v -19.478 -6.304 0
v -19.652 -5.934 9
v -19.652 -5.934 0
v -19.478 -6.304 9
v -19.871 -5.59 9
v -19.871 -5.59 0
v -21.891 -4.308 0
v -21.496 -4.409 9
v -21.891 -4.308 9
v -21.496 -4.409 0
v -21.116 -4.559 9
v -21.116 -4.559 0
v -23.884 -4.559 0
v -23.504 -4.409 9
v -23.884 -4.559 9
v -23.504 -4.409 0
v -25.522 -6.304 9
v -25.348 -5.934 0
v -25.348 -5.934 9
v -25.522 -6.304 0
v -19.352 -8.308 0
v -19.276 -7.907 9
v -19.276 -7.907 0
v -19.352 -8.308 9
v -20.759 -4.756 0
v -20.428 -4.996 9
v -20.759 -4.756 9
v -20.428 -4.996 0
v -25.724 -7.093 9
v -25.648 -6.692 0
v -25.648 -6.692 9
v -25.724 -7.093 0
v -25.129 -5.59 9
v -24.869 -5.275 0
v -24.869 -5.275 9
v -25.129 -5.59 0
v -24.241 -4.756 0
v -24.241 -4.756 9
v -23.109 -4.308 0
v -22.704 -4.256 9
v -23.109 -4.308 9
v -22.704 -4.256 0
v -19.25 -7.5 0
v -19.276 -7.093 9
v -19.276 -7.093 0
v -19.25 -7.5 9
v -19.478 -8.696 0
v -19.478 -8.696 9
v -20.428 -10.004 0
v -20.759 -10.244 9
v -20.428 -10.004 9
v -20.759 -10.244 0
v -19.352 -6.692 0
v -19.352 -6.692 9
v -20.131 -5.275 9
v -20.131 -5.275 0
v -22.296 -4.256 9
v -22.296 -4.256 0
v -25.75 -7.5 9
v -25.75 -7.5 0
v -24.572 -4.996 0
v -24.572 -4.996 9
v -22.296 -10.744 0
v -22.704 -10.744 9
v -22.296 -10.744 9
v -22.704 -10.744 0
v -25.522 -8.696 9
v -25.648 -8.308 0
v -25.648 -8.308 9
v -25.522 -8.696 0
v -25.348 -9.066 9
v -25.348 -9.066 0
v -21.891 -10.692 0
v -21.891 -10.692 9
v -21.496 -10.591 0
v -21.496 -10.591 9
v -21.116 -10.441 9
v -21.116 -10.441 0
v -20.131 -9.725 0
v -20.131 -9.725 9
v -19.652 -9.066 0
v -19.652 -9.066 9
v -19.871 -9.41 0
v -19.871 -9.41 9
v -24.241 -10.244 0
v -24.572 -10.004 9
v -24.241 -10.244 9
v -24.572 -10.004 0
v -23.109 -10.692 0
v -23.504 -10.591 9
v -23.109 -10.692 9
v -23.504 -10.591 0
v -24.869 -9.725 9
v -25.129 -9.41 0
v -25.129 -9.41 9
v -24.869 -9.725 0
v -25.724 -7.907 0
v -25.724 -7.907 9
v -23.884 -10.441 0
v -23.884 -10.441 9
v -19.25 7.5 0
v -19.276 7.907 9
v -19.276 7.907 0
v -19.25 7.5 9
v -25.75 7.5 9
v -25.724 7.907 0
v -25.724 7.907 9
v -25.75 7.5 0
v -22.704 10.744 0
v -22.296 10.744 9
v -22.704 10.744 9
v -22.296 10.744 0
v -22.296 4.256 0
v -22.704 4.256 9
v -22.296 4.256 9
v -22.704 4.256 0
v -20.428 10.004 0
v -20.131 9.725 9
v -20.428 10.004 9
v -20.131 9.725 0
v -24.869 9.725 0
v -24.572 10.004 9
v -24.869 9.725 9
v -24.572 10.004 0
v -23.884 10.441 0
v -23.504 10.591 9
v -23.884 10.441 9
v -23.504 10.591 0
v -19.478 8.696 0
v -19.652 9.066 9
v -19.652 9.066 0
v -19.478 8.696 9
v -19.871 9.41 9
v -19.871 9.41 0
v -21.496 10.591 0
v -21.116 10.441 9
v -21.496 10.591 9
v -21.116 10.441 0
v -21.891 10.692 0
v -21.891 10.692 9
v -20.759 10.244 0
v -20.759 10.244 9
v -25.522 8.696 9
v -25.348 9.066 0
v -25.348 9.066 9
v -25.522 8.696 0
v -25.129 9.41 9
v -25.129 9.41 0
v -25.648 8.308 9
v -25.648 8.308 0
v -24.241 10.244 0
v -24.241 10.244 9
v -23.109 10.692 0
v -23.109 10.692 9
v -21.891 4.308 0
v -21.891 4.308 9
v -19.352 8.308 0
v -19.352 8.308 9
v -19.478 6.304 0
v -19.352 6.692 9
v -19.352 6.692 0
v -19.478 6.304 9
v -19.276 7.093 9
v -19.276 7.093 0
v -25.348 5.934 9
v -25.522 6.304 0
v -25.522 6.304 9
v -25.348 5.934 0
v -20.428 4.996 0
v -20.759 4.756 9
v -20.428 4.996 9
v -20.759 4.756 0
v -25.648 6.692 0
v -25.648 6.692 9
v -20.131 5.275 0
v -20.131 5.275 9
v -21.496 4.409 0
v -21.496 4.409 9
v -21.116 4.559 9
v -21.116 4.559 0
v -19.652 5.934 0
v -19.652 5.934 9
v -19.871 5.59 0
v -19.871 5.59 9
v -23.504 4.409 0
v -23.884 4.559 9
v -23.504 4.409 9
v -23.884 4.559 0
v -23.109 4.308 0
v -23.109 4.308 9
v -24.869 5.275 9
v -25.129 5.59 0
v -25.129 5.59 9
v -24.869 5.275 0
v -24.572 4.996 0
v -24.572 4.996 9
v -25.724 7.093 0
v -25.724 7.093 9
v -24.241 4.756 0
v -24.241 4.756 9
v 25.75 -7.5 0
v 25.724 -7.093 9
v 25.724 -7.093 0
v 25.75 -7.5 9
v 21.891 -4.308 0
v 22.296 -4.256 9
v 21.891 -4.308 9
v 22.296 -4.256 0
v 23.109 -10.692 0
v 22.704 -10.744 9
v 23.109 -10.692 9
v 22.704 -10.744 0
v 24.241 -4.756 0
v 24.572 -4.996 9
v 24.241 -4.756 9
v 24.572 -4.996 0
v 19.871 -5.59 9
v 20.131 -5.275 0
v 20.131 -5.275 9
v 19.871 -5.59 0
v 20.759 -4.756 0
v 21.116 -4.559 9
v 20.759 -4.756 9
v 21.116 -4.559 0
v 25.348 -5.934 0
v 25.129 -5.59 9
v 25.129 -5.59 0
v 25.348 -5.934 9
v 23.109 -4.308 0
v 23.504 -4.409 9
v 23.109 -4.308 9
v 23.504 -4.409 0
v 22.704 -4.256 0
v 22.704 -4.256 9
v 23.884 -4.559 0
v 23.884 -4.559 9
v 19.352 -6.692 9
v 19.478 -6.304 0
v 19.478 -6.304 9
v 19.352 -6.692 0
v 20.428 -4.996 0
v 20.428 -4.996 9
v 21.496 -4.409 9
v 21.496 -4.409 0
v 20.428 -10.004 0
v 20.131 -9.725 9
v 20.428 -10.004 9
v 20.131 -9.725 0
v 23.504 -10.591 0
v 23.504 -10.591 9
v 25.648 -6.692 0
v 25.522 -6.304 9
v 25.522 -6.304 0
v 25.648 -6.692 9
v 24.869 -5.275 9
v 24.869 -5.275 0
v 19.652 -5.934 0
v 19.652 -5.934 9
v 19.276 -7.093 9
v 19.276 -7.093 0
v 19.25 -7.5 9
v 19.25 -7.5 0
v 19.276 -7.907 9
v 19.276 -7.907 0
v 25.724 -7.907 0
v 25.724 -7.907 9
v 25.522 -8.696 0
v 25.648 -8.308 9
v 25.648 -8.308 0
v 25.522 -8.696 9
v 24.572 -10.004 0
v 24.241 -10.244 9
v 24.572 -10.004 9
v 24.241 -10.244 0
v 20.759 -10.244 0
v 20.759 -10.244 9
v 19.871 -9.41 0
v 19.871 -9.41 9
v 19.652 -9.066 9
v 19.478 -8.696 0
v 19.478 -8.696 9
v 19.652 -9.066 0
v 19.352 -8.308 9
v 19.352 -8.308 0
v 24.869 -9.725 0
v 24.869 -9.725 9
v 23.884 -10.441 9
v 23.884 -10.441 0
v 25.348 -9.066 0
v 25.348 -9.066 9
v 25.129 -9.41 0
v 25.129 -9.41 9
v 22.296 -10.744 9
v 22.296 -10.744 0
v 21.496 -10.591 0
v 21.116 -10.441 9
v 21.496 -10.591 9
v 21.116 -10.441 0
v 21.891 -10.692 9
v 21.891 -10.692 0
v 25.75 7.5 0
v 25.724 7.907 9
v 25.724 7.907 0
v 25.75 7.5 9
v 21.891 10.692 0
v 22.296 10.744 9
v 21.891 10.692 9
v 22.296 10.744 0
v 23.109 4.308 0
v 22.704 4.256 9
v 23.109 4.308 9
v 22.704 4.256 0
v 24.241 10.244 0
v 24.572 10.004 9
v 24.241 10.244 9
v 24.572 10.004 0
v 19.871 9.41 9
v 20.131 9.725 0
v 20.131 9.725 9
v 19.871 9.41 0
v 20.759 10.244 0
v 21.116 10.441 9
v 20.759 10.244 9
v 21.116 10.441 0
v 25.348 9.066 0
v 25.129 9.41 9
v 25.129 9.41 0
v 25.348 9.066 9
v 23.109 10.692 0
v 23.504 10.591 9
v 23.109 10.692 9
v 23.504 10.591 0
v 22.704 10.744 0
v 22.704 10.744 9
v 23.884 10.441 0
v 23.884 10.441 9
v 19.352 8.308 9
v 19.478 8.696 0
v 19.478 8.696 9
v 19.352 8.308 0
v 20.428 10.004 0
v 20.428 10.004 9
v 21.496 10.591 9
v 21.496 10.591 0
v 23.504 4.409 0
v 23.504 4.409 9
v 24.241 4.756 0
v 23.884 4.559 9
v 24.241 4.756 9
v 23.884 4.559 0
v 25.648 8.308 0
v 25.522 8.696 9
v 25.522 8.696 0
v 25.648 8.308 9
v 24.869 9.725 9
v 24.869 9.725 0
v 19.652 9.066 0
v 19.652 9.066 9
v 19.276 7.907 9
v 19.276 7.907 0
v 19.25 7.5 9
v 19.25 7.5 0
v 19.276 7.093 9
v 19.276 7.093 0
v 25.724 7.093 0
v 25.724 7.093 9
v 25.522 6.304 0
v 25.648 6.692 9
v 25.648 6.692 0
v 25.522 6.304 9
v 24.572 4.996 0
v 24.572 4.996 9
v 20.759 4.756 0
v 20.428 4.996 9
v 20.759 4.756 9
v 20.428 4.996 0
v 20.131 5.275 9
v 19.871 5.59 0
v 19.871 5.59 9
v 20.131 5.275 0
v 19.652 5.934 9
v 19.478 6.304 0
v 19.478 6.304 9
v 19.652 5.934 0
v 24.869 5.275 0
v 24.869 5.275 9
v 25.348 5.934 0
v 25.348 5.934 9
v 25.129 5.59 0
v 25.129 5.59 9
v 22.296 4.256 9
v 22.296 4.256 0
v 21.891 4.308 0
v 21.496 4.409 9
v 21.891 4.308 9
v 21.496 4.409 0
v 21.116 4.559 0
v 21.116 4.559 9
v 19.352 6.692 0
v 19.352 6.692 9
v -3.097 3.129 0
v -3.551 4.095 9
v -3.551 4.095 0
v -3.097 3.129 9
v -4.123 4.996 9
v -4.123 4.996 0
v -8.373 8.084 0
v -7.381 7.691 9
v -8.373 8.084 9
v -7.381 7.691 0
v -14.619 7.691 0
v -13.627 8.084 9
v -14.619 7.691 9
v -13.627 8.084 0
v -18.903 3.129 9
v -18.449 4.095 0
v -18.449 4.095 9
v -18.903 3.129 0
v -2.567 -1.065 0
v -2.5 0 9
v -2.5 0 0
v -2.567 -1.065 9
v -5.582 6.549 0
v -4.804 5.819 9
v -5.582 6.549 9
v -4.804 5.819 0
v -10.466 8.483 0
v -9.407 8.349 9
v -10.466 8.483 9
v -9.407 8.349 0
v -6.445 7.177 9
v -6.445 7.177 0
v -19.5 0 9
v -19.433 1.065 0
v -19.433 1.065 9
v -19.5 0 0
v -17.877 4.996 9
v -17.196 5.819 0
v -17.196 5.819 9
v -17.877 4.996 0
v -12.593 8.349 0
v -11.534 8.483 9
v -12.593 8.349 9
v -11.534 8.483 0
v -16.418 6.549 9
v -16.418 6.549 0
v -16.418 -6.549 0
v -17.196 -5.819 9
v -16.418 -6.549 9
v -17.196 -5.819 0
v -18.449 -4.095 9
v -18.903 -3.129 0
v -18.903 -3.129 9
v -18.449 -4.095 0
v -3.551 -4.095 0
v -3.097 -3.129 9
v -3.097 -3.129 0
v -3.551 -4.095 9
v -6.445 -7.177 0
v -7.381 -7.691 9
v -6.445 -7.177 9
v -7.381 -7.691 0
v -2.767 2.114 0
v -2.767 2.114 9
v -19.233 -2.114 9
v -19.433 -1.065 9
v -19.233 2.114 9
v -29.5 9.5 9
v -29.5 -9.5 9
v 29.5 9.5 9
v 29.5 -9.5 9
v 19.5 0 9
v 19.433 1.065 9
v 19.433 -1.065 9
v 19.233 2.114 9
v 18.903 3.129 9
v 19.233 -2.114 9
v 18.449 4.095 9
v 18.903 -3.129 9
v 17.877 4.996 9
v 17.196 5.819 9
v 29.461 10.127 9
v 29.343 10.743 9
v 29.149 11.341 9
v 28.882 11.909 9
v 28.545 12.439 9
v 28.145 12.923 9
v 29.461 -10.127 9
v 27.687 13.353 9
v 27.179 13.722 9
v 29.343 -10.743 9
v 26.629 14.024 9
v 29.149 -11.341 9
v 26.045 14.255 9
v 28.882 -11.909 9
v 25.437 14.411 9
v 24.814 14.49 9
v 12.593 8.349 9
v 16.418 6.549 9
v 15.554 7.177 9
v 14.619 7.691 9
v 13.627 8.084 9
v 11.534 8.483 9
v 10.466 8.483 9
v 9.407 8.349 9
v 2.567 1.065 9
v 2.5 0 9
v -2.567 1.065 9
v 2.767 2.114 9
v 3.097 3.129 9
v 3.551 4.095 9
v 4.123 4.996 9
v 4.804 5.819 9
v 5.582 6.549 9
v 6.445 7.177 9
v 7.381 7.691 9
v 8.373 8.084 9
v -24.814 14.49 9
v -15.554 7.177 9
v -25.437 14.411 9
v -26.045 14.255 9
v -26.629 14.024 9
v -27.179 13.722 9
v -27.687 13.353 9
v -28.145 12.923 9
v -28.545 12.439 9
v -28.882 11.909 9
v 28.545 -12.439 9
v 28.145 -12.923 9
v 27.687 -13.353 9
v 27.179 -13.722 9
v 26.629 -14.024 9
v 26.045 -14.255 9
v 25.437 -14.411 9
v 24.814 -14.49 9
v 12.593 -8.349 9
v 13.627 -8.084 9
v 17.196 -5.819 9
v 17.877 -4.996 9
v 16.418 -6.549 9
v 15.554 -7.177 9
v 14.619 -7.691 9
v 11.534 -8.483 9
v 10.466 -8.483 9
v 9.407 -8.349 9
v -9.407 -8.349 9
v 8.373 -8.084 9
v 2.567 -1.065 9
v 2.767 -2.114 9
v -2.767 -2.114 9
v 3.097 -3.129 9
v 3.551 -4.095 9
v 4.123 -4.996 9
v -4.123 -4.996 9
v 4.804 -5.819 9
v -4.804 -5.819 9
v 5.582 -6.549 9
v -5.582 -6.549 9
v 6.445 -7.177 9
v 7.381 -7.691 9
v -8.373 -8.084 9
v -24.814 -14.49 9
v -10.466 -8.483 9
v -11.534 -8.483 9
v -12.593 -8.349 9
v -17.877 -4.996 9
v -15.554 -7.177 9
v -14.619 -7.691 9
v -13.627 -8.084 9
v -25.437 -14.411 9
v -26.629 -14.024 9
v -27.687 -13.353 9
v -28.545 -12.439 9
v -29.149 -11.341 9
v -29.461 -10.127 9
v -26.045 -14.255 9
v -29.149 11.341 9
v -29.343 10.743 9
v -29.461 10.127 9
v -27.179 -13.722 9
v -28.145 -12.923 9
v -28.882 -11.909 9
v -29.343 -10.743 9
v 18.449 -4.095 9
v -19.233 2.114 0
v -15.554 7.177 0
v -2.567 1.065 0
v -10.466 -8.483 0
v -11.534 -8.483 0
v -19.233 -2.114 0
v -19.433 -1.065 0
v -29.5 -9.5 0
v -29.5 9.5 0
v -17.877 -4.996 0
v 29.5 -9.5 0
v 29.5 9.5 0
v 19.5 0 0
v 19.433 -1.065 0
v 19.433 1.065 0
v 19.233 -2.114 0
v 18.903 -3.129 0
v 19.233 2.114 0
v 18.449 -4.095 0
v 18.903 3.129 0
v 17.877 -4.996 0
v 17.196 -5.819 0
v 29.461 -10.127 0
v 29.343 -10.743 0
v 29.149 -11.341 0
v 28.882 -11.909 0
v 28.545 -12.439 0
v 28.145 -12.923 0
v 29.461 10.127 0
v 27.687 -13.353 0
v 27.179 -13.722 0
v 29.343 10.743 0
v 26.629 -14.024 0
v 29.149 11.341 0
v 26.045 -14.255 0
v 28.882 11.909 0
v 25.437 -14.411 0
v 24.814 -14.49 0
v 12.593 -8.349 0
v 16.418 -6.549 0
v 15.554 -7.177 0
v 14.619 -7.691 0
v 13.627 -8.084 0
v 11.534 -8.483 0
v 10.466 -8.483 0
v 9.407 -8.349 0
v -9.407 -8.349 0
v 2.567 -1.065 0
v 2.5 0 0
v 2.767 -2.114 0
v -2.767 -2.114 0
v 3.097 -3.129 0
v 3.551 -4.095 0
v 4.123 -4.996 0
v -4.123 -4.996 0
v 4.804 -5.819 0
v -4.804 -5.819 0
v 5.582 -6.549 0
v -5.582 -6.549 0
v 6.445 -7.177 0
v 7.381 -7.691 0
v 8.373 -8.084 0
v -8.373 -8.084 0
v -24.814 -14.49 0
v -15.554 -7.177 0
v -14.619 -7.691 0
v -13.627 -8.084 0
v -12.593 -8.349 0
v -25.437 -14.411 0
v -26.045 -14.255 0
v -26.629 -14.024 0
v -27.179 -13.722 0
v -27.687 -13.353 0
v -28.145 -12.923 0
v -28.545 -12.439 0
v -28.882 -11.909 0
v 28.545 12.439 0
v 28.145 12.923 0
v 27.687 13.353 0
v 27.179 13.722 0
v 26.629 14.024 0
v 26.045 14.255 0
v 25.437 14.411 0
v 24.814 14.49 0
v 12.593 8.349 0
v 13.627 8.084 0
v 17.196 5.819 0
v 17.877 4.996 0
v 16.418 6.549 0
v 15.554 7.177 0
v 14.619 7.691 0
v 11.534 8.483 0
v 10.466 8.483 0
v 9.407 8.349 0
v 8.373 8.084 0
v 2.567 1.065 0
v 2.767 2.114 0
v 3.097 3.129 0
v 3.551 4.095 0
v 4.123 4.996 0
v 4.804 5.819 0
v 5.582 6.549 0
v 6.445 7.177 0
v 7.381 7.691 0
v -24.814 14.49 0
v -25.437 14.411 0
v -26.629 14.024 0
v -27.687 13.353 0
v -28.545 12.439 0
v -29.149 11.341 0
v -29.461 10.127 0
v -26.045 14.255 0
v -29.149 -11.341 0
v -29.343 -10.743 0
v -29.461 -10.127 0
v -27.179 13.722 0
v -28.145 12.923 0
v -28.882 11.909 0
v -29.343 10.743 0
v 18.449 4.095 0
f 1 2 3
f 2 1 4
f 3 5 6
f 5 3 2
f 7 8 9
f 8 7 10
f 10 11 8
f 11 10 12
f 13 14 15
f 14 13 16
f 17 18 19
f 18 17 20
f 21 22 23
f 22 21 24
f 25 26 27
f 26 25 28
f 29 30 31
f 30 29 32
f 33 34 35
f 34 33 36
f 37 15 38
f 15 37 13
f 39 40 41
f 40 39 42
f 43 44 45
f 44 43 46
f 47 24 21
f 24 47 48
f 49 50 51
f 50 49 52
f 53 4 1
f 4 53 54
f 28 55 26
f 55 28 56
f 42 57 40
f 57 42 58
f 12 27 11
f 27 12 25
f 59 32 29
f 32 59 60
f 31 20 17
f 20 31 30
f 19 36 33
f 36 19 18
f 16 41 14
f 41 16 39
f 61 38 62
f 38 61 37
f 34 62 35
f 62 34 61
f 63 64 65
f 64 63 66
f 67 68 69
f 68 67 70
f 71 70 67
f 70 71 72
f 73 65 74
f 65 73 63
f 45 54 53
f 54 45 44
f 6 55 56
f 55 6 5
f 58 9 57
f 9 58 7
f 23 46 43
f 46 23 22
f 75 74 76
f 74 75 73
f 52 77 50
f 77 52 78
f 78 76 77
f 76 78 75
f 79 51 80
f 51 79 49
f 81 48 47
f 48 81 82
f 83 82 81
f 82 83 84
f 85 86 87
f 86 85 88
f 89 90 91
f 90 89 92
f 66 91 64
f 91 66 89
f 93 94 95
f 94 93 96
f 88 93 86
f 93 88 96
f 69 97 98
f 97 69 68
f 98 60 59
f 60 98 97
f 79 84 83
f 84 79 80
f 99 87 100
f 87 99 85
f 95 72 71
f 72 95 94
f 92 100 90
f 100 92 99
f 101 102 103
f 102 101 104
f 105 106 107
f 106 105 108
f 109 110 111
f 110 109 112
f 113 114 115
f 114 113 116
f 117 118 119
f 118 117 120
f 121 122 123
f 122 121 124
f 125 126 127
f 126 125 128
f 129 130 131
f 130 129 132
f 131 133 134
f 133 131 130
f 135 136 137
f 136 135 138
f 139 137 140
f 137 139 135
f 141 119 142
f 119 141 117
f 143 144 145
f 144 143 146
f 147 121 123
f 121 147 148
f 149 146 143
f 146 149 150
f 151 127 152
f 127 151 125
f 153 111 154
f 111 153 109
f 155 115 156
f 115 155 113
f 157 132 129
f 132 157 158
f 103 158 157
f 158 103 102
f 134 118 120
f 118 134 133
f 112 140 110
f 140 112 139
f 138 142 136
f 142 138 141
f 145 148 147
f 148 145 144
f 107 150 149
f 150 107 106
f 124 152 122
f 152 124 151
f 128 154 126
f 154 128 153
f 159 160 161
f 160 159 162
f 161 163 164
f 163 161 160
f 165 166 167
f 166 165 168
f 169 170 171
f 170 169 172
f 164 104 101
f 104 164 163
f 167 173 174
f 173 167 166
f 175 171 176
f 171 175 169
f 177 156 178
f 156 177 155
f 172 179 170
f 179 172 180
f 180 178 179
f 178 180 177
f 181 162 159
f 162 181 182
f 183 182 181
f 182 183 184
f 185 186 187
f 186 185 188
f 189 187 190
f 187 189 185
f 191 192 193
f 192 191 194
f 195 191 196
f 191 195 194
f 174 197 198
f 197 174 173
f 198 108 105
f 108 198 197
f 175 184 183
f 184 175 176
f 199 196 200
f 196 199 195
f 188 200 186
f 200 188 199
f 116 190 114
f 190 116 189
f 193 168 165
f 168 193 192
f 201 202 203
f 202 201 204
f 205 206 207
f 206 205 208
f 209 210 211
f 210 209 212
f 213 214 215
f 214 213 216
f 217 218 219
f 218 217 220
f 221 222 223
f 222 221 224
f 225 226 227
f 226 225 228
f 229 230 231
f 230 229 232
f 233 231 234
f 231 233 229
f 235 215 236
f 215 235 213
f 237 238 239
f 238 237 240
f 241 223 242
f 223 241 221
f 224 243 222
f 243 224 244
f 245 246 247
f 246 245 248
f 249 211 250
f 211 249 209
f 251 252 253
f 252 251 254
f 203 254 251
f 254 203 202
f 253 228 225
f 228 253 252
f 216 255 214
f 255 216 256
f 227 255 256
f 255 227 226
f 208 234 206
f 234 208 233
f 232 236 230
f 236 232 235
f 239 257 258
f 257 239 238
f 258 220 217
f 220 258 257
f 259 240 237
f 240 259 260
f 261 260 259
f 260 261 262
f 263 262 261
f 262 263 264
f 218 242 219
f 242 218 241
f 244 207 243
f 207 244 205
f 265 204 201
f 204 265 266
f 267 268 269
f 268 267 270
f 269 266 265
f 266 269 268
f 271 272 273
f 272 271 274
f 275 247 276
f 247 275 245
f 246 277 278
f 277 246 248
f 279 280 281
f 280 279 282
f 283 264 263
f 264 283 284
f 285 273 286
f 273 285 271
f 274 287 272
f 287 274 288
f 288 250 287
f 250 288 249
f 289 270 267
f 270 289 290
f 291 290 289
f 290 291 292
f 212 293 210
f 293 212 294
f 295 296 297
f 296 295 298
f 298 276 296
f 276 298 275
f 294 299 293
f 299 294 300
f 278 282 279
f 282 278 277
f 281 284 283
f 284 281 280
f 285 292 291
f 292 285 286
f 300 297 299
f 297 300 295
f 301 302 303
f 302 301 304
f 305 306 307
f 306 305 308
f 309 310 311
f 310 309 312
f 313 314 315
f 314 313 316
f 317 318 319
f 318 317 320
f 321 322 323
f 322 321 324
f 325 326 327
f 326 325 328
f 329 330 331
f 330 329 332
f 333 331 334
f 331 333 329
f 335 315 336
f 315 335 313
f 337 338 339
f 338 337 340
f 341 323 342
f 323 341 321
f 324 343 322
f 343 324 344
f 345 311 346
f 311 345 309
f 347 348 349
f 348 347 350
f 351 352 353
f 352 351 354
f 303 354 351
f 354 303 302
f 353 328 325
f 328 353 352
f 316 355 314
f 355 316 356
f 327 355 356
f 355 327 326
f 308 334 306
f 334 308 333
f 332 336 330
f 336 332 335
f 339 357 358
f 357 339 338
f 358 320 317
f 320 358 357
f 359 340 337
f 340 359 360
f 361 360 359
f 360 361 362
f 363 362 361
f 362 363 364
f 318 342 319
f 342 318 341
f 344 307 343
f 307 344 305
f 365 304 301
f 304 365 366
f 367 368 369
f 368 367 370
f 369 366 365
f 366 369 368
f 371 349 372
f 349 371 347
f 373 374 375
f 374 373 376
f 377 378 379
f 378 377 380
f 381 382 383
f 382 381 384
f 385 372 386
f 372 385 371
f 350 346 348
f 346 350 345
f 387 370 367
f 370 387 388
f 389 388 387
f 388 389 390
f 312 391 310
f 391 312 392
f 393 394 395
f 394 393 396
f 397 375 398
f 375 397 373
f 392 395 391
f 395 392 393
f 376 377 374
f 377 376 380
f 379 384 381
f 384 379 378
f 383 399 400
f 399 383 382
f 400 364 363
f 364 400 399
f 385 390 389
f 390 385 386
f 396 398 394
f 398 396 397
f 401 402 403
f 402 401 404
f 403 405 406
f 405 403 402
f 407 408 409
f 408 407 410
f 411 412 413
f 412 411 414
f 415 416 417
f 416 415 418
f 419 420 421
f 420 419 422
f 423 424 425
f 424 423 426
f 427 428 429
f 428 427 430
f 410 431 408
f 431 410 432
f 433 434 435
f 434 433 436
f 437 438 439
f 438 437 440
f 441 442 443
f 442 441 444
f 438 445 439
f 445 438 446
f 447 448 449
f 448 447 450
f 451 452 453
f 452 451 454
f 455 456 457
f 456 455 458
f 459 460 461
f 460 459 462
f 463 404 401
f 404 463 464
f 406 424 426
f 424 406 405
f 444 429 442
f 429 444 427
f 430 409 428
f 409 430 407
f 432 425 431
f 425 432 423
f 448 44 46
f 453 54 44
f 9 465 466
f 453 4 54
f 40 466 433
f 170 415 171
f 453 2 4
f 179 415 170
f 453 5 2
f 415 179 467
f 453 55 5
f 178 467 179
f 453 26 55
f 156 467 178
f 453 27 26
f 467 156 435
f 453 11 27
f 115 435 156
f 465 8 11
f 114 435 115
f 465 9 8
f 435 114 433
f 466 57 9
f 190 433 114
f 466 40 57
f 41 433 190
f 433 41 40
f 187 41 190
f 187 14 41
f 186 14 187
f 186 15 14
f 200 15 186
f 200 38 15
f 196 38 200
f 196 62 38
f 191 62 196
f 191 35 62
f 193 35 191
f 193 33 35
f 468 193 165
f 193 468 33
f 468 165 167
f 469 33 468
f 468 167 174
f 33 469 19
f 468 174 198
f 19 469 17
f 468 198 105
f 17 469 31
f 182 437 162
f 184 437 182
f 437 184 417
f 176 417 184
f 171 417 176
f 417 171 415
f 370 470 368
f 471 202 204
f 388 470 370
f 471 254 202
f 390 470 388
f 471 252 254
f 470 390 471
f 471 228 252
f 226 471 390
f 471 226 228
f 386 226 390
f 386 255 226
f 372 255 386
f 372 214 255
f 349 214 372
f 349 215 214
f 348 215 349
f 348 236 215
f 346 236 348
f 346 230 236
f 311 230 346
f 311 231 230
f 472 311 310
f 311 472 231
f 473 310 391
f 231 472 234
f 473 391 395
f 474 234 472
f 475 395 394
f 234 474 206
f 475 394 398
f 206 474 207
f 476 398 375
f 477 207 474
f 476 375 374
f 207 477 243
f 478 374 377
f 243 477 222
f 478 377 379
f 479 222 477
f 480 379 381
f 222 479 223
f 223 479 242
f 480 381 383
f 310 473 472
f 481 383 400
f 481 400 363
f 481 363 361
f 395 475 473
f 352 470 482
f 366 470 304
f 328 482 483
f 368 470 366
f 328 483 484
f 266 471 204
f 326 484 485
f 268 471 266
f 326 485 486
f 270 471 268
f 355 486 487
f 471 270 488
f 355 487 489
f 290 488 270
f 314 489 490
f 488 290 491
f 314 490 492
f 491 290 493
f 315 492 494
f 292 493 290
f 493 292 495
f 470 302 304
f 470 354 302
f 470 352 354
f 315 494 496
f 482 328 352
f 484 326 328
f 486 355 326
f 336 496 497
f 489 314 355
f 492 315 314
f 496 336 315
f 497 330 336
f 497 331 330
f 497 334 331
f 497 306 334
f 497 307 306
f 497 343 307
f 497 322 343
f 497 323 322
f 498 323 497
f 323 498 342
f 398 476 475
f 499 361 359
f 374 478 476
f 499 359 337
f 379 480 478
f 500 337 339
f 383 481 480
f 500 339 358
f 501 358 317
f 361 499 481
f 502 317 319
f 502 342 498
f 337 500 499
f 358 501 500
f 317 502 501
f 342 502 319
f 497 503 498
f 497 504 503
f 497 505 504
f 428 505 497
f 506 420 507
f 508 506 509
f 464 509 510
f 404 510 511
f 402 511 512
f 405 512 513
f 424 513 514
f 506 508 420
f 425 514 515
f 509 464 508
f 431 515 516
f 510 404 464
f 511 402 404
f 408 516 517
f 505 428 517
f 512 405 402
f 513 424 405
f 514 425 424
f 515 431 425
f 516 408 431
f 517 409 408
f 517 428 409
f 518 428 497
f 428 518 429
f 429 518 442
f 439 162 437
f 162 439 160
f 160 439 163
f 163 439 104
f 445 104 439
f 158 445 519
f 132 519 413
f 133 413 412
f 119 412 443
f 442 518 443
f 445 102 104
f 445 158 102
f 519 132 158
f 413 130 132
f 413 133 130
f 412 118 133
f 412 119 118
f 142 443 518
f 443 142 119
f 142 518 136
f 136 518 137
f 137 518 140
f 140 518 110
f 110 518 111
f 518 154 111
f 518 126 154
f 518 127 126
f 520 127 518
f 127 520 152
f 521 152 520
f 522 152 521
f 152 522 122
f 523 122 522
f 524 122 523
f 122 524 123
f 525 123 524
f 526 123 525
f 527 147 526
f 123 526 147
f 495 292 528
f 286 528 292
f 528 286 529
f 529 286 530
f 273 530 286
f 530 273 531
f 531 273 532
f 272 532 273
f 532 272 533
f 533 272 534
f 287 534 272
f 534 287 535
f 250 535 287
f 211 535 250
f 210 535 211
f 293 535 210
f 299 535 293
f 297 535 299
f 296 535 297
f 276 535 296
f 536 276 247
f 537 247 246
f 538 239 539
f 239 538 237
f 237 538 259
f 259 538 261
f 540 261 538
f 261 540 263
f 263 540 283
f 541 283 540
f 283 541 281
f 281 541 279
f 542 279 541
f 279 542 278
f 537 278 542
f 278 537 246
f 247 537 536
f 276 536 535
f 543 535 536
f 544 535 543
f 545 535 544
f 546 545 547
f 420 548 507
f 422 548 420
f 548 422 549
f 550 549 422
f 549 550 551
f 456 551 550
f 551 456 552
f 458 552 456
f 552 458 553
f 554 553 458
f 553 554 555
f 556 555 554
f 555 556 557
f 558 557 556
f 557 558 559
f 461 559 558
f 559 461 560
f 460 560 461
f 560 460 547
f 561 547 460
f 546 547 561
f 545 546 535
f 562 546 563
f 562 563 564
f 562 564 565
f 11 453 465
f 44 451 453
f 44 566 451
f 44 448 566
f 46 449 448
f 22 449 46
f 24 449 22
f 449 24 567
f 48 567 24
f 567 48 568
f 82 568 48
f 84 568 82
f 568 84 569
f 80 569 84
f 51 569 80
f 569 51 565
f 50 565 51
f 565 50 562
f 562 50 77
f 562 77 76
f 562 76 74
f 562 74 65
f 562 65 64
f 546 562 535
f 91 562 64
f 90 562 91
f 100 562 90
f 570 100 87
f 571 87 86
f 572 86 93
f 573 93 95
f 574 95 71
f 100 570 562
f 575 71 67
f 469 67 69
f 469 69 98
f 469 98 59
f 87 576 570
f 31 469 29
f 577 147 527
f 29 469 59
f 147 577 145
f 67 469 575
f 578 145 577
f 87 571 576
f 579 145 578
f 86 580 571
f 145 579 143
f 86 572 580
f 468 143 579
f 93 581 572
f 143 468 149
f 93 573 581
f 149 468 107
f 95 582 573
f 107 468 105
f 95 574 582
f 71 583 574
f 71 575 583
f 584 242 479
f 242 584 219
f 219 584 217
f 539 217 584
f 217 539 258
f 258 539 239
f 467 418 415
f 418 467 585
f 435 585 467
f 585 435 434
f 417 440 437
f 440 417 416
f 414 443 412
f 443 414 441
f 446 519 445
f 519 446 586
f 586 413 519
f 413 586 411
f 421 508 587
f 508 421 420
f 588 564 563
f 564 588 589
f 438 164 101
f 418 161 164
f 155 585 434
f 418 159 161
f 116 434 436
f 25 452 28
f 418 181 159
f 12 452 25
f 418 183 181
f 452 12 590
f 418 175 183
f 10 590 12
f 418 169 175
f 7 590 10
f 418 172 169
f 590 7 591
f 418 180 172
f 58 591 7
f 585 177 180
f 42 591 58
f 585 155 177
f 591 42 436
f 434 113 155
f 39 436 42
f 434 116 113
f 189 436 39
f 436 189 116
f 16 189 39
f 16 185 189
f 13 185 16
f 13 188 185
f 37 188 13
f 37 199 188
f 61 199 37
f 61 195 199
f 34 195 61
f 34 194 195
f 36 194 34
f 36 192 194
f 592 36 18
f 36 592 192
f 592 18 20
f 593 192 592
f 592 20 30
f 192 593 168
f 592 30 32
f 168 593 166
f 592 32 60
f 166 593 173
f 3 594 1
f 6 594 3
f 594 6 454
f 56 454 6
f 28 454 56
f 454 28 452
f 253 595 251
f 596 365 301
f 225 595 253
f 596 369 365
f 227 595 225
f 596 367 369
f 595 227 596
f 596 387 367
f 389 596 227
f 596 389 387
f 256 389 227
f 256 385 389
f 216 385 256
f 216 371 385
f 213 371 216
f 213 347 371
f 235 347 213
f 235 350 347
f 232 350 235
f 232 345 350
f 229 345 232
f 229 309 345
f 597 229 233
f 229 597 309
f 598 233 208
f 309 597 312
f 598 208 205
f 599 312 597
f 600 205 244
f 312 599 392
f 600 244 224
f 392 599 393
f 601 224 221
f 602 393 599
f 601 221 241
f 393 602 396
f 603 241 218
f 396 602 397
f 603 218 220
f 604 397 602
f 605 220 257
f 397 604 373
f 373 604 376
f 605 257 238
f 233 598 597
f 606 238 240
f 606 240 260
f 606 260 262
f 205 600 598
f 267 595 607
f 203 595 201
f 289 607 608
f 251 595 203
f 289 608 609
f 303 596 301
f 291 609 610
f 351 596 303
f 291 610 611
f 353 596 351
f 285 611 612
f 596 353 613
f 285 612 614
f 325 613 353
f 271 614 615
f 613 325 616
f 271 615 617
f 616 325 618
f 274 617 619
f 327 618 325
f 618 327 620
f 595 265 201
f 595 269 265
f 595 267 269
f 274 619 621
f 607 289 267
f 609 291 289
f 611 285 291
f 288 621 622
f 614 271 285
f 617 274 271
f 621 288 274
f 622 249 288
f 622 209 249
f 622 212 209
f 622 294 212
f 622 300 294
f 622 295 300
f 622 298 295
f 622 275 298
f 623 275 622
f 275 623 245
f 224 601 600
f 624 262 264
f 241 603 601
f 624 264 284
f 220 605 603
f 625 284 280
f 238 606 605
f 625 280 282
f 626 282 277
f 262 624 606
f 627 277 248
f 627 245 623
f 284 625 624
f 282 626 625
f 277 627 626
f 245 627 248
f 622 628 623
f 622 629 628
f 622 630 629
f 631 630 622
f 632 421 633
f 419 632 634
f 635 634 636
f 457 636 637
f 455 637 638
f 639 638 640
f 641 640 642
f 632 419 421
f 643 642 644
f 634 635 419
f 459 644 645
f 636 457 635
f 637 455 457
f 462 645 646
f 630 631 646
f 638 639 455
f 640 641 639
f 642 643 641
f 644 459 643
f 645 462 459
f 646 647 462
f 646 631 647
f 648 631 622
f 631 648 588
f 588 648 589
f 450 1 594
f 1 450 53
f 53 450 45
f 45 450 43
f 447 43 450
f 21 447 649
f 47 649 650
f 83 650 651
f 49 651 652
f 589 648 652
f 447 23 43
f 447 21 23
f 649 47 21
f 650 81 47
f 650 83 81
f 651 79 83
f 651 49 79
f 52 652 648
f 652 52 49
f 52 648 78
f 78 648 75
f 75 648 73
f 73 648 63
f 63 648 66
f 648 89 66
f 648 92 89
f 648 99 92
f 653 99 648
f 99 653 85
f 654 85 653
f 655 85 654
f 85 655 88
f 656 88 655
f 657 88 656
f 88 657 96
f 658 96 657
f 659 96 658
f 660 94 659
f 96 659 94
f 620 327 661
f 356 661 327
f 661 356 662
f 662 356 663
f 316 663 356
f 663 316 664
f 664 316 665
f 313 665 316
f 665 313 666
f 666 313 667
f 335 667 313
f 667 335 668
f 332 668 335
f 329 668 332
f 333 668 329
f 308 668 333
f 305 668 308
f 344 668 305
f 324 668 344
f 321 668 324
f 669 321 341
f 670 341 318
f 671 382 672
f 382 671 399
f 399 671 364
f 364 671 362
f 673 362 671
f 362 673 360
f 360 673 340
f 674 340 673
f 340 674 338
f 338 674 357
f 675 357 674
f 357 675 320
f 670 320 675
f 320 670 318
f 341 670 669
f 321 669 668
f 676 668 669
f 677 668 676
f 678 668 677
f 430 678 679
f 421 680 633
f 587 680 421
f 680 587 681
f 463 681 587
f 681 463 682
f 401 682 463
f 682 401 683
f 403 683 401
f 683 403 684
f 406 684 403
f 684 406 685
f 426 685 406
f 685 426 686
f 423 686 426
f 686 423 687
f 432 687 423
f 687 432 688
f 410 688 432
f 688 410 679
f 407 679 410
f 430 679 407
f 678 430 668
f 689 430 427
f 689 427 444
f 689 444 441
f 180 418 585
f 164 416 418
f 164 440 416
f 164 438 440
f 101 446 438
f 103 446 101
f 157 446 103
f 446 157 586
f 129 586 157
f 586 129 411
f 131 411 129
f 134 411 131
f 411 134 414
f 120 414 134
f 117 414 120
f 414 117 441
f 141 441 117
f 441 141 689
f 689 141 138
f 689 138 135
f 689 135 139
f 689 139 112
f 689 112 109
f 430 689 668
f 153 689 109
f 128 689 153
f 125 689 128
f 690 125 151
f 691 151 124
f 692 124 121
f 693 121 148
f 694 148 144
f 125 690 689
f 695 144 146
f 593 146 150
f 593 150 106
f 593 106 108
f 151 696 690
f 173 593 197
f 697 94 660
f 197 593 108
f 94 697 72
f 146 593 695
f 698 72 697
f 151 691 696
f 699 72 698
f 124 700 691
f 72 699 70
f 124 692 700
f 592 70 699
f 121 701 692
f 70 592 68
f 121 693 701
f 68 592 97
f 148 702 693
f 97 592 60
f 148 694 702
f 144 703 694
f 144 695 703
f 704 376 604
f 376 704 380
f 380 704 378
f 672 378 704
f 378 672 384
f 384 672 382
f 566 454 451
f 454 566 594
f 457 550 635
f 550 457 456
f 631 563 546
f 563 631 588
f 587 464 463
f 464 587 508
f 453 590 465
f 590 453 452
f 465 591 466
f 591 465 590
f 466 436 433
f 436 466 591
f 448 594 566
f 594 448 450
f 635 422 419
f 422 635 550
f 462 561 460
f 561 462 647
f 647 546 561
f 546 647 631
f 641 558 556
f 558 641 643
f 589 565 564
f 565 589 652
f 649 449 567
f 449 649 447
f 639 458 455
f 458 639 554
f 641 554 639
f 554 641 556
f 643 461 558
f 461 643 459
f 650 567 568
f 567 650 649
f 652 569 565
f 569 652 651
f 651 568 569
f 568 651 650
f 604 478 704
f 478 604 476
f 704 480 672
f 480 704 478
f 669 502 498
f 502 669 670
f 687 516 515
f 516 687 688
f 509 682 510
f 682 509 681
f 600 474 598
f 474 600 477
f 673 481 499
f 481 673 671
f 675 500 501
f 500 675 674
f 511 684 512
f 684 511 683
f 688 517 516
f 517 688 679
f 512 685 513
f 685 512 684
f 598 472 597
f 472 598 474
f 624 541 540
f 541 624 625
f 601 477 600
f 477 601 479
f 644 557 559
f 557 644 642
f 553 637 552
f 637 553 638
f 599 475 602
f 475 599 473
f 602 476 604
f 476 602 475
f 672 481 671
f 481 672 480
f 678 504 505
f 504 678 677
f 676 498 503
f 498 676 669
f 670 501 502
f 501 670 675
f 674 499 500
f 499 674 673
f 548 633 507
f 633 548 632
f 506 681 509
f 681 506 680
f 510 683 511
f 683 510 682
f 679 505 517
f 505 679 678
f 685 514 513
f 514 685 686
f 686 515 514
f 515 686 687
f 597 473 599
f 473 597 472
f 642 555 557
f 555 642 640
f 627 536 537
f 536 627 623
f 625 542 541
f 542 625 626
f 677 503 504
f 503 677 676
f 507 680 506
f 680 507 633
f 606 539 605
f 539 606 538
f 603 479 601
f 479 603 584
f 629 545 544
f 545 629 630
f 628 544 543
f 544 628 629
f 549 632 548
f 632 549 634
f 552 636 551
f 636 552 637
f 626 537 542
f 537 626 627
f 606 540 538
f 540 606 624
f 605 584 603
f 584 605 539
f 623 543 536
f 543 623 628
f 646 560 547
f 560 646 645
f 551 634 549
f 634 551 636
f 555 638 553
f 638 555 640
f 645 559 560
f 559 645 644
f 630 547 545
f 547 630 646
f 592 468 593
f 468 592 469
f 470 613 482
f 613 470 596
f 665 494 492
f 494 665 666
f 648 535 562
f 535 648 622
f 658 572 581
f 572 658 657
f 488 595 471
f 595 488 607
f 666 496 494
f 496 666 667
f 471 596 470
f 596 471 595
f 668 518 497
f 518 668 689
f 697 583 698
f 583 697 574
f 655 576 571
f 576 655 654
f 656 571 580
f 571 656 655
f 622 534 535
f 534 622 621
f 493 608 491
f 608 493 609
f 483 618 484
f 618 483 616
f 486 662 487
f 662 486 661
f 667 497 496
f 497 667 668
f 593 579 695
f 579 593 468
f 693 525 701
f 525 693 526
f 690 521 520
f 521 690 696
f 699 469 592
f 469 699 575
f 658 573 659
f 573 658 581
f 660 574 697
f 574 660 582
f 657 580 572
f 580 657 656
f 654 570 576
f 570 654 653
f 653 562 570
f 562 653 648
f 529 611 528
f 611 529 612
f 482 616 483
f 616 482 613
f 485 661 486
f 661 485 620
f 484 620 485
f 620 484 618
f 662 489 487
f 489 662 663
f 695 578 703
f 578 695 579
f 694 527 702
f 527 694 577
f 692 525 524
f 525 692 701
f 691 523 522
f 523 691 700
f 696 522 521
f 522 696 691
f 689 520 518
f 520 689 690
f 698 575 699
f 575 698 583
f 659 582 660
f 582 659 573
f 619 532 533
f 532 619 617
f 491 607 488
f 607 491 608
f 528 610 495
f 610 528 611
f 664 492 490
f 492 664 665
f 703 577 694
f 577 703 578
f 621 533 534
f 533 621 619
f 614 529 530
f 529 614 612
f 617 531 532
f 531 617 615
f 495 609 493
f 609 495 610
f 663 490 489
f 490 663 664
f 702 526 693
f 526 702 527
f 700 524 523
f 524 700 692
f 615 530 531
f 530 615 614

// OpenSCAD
$fn = 50;


difference() {
	union() {
		hull() {
			translate(v = [-24.5000000000, 9.5000000000, 0]) {
				cylinder(h = 9, r = 5);
			}
			translate(v = [24.5000000000, 9.5000000000, 0]) {
				cylinder(h = 9, r = 5);
			}
			translate(v = [-24.5000000000, -9.5000000000, 0]) {
				cylinder(h = 9, r = 5);
			}
			translate(v = [24.5000000000, -9.5000000000, 0]) {
				cylinder(h = 9, r = 5);
			}
		}
	}
	union() {
		#translate(v = [-22.5000000000, -7.5000000000, -100.0000000000]) {
			cylinder(h = 200, r = 3.2500000000);
		}
		#translate(v = [-22.5000000000, 7.5000000000, -100.0000000000]) {
			cylinder(h = 200, r = 3.2500000000);
		}
		#translate(v = [22.5000000000, -7.5000000000, -100.0000000000]) {
			cylinder(h = 200, r = 3.2500000000);
		}
		#translate(v = [22.5000000000, 7.5000000000, -100.0000000000]) {
			cylinder(h = 200, r = 3.2500000000);
		}
		#translate(v = [-11.0000000000, 0, 0]) {
			cylinder(h = 9, r = 8.5000000000);
		}
		#translate(v = [11.0000000000, 0, 0]) {
			cylinder(h = 9, r = 8.5000000000);
		}
	}
}
